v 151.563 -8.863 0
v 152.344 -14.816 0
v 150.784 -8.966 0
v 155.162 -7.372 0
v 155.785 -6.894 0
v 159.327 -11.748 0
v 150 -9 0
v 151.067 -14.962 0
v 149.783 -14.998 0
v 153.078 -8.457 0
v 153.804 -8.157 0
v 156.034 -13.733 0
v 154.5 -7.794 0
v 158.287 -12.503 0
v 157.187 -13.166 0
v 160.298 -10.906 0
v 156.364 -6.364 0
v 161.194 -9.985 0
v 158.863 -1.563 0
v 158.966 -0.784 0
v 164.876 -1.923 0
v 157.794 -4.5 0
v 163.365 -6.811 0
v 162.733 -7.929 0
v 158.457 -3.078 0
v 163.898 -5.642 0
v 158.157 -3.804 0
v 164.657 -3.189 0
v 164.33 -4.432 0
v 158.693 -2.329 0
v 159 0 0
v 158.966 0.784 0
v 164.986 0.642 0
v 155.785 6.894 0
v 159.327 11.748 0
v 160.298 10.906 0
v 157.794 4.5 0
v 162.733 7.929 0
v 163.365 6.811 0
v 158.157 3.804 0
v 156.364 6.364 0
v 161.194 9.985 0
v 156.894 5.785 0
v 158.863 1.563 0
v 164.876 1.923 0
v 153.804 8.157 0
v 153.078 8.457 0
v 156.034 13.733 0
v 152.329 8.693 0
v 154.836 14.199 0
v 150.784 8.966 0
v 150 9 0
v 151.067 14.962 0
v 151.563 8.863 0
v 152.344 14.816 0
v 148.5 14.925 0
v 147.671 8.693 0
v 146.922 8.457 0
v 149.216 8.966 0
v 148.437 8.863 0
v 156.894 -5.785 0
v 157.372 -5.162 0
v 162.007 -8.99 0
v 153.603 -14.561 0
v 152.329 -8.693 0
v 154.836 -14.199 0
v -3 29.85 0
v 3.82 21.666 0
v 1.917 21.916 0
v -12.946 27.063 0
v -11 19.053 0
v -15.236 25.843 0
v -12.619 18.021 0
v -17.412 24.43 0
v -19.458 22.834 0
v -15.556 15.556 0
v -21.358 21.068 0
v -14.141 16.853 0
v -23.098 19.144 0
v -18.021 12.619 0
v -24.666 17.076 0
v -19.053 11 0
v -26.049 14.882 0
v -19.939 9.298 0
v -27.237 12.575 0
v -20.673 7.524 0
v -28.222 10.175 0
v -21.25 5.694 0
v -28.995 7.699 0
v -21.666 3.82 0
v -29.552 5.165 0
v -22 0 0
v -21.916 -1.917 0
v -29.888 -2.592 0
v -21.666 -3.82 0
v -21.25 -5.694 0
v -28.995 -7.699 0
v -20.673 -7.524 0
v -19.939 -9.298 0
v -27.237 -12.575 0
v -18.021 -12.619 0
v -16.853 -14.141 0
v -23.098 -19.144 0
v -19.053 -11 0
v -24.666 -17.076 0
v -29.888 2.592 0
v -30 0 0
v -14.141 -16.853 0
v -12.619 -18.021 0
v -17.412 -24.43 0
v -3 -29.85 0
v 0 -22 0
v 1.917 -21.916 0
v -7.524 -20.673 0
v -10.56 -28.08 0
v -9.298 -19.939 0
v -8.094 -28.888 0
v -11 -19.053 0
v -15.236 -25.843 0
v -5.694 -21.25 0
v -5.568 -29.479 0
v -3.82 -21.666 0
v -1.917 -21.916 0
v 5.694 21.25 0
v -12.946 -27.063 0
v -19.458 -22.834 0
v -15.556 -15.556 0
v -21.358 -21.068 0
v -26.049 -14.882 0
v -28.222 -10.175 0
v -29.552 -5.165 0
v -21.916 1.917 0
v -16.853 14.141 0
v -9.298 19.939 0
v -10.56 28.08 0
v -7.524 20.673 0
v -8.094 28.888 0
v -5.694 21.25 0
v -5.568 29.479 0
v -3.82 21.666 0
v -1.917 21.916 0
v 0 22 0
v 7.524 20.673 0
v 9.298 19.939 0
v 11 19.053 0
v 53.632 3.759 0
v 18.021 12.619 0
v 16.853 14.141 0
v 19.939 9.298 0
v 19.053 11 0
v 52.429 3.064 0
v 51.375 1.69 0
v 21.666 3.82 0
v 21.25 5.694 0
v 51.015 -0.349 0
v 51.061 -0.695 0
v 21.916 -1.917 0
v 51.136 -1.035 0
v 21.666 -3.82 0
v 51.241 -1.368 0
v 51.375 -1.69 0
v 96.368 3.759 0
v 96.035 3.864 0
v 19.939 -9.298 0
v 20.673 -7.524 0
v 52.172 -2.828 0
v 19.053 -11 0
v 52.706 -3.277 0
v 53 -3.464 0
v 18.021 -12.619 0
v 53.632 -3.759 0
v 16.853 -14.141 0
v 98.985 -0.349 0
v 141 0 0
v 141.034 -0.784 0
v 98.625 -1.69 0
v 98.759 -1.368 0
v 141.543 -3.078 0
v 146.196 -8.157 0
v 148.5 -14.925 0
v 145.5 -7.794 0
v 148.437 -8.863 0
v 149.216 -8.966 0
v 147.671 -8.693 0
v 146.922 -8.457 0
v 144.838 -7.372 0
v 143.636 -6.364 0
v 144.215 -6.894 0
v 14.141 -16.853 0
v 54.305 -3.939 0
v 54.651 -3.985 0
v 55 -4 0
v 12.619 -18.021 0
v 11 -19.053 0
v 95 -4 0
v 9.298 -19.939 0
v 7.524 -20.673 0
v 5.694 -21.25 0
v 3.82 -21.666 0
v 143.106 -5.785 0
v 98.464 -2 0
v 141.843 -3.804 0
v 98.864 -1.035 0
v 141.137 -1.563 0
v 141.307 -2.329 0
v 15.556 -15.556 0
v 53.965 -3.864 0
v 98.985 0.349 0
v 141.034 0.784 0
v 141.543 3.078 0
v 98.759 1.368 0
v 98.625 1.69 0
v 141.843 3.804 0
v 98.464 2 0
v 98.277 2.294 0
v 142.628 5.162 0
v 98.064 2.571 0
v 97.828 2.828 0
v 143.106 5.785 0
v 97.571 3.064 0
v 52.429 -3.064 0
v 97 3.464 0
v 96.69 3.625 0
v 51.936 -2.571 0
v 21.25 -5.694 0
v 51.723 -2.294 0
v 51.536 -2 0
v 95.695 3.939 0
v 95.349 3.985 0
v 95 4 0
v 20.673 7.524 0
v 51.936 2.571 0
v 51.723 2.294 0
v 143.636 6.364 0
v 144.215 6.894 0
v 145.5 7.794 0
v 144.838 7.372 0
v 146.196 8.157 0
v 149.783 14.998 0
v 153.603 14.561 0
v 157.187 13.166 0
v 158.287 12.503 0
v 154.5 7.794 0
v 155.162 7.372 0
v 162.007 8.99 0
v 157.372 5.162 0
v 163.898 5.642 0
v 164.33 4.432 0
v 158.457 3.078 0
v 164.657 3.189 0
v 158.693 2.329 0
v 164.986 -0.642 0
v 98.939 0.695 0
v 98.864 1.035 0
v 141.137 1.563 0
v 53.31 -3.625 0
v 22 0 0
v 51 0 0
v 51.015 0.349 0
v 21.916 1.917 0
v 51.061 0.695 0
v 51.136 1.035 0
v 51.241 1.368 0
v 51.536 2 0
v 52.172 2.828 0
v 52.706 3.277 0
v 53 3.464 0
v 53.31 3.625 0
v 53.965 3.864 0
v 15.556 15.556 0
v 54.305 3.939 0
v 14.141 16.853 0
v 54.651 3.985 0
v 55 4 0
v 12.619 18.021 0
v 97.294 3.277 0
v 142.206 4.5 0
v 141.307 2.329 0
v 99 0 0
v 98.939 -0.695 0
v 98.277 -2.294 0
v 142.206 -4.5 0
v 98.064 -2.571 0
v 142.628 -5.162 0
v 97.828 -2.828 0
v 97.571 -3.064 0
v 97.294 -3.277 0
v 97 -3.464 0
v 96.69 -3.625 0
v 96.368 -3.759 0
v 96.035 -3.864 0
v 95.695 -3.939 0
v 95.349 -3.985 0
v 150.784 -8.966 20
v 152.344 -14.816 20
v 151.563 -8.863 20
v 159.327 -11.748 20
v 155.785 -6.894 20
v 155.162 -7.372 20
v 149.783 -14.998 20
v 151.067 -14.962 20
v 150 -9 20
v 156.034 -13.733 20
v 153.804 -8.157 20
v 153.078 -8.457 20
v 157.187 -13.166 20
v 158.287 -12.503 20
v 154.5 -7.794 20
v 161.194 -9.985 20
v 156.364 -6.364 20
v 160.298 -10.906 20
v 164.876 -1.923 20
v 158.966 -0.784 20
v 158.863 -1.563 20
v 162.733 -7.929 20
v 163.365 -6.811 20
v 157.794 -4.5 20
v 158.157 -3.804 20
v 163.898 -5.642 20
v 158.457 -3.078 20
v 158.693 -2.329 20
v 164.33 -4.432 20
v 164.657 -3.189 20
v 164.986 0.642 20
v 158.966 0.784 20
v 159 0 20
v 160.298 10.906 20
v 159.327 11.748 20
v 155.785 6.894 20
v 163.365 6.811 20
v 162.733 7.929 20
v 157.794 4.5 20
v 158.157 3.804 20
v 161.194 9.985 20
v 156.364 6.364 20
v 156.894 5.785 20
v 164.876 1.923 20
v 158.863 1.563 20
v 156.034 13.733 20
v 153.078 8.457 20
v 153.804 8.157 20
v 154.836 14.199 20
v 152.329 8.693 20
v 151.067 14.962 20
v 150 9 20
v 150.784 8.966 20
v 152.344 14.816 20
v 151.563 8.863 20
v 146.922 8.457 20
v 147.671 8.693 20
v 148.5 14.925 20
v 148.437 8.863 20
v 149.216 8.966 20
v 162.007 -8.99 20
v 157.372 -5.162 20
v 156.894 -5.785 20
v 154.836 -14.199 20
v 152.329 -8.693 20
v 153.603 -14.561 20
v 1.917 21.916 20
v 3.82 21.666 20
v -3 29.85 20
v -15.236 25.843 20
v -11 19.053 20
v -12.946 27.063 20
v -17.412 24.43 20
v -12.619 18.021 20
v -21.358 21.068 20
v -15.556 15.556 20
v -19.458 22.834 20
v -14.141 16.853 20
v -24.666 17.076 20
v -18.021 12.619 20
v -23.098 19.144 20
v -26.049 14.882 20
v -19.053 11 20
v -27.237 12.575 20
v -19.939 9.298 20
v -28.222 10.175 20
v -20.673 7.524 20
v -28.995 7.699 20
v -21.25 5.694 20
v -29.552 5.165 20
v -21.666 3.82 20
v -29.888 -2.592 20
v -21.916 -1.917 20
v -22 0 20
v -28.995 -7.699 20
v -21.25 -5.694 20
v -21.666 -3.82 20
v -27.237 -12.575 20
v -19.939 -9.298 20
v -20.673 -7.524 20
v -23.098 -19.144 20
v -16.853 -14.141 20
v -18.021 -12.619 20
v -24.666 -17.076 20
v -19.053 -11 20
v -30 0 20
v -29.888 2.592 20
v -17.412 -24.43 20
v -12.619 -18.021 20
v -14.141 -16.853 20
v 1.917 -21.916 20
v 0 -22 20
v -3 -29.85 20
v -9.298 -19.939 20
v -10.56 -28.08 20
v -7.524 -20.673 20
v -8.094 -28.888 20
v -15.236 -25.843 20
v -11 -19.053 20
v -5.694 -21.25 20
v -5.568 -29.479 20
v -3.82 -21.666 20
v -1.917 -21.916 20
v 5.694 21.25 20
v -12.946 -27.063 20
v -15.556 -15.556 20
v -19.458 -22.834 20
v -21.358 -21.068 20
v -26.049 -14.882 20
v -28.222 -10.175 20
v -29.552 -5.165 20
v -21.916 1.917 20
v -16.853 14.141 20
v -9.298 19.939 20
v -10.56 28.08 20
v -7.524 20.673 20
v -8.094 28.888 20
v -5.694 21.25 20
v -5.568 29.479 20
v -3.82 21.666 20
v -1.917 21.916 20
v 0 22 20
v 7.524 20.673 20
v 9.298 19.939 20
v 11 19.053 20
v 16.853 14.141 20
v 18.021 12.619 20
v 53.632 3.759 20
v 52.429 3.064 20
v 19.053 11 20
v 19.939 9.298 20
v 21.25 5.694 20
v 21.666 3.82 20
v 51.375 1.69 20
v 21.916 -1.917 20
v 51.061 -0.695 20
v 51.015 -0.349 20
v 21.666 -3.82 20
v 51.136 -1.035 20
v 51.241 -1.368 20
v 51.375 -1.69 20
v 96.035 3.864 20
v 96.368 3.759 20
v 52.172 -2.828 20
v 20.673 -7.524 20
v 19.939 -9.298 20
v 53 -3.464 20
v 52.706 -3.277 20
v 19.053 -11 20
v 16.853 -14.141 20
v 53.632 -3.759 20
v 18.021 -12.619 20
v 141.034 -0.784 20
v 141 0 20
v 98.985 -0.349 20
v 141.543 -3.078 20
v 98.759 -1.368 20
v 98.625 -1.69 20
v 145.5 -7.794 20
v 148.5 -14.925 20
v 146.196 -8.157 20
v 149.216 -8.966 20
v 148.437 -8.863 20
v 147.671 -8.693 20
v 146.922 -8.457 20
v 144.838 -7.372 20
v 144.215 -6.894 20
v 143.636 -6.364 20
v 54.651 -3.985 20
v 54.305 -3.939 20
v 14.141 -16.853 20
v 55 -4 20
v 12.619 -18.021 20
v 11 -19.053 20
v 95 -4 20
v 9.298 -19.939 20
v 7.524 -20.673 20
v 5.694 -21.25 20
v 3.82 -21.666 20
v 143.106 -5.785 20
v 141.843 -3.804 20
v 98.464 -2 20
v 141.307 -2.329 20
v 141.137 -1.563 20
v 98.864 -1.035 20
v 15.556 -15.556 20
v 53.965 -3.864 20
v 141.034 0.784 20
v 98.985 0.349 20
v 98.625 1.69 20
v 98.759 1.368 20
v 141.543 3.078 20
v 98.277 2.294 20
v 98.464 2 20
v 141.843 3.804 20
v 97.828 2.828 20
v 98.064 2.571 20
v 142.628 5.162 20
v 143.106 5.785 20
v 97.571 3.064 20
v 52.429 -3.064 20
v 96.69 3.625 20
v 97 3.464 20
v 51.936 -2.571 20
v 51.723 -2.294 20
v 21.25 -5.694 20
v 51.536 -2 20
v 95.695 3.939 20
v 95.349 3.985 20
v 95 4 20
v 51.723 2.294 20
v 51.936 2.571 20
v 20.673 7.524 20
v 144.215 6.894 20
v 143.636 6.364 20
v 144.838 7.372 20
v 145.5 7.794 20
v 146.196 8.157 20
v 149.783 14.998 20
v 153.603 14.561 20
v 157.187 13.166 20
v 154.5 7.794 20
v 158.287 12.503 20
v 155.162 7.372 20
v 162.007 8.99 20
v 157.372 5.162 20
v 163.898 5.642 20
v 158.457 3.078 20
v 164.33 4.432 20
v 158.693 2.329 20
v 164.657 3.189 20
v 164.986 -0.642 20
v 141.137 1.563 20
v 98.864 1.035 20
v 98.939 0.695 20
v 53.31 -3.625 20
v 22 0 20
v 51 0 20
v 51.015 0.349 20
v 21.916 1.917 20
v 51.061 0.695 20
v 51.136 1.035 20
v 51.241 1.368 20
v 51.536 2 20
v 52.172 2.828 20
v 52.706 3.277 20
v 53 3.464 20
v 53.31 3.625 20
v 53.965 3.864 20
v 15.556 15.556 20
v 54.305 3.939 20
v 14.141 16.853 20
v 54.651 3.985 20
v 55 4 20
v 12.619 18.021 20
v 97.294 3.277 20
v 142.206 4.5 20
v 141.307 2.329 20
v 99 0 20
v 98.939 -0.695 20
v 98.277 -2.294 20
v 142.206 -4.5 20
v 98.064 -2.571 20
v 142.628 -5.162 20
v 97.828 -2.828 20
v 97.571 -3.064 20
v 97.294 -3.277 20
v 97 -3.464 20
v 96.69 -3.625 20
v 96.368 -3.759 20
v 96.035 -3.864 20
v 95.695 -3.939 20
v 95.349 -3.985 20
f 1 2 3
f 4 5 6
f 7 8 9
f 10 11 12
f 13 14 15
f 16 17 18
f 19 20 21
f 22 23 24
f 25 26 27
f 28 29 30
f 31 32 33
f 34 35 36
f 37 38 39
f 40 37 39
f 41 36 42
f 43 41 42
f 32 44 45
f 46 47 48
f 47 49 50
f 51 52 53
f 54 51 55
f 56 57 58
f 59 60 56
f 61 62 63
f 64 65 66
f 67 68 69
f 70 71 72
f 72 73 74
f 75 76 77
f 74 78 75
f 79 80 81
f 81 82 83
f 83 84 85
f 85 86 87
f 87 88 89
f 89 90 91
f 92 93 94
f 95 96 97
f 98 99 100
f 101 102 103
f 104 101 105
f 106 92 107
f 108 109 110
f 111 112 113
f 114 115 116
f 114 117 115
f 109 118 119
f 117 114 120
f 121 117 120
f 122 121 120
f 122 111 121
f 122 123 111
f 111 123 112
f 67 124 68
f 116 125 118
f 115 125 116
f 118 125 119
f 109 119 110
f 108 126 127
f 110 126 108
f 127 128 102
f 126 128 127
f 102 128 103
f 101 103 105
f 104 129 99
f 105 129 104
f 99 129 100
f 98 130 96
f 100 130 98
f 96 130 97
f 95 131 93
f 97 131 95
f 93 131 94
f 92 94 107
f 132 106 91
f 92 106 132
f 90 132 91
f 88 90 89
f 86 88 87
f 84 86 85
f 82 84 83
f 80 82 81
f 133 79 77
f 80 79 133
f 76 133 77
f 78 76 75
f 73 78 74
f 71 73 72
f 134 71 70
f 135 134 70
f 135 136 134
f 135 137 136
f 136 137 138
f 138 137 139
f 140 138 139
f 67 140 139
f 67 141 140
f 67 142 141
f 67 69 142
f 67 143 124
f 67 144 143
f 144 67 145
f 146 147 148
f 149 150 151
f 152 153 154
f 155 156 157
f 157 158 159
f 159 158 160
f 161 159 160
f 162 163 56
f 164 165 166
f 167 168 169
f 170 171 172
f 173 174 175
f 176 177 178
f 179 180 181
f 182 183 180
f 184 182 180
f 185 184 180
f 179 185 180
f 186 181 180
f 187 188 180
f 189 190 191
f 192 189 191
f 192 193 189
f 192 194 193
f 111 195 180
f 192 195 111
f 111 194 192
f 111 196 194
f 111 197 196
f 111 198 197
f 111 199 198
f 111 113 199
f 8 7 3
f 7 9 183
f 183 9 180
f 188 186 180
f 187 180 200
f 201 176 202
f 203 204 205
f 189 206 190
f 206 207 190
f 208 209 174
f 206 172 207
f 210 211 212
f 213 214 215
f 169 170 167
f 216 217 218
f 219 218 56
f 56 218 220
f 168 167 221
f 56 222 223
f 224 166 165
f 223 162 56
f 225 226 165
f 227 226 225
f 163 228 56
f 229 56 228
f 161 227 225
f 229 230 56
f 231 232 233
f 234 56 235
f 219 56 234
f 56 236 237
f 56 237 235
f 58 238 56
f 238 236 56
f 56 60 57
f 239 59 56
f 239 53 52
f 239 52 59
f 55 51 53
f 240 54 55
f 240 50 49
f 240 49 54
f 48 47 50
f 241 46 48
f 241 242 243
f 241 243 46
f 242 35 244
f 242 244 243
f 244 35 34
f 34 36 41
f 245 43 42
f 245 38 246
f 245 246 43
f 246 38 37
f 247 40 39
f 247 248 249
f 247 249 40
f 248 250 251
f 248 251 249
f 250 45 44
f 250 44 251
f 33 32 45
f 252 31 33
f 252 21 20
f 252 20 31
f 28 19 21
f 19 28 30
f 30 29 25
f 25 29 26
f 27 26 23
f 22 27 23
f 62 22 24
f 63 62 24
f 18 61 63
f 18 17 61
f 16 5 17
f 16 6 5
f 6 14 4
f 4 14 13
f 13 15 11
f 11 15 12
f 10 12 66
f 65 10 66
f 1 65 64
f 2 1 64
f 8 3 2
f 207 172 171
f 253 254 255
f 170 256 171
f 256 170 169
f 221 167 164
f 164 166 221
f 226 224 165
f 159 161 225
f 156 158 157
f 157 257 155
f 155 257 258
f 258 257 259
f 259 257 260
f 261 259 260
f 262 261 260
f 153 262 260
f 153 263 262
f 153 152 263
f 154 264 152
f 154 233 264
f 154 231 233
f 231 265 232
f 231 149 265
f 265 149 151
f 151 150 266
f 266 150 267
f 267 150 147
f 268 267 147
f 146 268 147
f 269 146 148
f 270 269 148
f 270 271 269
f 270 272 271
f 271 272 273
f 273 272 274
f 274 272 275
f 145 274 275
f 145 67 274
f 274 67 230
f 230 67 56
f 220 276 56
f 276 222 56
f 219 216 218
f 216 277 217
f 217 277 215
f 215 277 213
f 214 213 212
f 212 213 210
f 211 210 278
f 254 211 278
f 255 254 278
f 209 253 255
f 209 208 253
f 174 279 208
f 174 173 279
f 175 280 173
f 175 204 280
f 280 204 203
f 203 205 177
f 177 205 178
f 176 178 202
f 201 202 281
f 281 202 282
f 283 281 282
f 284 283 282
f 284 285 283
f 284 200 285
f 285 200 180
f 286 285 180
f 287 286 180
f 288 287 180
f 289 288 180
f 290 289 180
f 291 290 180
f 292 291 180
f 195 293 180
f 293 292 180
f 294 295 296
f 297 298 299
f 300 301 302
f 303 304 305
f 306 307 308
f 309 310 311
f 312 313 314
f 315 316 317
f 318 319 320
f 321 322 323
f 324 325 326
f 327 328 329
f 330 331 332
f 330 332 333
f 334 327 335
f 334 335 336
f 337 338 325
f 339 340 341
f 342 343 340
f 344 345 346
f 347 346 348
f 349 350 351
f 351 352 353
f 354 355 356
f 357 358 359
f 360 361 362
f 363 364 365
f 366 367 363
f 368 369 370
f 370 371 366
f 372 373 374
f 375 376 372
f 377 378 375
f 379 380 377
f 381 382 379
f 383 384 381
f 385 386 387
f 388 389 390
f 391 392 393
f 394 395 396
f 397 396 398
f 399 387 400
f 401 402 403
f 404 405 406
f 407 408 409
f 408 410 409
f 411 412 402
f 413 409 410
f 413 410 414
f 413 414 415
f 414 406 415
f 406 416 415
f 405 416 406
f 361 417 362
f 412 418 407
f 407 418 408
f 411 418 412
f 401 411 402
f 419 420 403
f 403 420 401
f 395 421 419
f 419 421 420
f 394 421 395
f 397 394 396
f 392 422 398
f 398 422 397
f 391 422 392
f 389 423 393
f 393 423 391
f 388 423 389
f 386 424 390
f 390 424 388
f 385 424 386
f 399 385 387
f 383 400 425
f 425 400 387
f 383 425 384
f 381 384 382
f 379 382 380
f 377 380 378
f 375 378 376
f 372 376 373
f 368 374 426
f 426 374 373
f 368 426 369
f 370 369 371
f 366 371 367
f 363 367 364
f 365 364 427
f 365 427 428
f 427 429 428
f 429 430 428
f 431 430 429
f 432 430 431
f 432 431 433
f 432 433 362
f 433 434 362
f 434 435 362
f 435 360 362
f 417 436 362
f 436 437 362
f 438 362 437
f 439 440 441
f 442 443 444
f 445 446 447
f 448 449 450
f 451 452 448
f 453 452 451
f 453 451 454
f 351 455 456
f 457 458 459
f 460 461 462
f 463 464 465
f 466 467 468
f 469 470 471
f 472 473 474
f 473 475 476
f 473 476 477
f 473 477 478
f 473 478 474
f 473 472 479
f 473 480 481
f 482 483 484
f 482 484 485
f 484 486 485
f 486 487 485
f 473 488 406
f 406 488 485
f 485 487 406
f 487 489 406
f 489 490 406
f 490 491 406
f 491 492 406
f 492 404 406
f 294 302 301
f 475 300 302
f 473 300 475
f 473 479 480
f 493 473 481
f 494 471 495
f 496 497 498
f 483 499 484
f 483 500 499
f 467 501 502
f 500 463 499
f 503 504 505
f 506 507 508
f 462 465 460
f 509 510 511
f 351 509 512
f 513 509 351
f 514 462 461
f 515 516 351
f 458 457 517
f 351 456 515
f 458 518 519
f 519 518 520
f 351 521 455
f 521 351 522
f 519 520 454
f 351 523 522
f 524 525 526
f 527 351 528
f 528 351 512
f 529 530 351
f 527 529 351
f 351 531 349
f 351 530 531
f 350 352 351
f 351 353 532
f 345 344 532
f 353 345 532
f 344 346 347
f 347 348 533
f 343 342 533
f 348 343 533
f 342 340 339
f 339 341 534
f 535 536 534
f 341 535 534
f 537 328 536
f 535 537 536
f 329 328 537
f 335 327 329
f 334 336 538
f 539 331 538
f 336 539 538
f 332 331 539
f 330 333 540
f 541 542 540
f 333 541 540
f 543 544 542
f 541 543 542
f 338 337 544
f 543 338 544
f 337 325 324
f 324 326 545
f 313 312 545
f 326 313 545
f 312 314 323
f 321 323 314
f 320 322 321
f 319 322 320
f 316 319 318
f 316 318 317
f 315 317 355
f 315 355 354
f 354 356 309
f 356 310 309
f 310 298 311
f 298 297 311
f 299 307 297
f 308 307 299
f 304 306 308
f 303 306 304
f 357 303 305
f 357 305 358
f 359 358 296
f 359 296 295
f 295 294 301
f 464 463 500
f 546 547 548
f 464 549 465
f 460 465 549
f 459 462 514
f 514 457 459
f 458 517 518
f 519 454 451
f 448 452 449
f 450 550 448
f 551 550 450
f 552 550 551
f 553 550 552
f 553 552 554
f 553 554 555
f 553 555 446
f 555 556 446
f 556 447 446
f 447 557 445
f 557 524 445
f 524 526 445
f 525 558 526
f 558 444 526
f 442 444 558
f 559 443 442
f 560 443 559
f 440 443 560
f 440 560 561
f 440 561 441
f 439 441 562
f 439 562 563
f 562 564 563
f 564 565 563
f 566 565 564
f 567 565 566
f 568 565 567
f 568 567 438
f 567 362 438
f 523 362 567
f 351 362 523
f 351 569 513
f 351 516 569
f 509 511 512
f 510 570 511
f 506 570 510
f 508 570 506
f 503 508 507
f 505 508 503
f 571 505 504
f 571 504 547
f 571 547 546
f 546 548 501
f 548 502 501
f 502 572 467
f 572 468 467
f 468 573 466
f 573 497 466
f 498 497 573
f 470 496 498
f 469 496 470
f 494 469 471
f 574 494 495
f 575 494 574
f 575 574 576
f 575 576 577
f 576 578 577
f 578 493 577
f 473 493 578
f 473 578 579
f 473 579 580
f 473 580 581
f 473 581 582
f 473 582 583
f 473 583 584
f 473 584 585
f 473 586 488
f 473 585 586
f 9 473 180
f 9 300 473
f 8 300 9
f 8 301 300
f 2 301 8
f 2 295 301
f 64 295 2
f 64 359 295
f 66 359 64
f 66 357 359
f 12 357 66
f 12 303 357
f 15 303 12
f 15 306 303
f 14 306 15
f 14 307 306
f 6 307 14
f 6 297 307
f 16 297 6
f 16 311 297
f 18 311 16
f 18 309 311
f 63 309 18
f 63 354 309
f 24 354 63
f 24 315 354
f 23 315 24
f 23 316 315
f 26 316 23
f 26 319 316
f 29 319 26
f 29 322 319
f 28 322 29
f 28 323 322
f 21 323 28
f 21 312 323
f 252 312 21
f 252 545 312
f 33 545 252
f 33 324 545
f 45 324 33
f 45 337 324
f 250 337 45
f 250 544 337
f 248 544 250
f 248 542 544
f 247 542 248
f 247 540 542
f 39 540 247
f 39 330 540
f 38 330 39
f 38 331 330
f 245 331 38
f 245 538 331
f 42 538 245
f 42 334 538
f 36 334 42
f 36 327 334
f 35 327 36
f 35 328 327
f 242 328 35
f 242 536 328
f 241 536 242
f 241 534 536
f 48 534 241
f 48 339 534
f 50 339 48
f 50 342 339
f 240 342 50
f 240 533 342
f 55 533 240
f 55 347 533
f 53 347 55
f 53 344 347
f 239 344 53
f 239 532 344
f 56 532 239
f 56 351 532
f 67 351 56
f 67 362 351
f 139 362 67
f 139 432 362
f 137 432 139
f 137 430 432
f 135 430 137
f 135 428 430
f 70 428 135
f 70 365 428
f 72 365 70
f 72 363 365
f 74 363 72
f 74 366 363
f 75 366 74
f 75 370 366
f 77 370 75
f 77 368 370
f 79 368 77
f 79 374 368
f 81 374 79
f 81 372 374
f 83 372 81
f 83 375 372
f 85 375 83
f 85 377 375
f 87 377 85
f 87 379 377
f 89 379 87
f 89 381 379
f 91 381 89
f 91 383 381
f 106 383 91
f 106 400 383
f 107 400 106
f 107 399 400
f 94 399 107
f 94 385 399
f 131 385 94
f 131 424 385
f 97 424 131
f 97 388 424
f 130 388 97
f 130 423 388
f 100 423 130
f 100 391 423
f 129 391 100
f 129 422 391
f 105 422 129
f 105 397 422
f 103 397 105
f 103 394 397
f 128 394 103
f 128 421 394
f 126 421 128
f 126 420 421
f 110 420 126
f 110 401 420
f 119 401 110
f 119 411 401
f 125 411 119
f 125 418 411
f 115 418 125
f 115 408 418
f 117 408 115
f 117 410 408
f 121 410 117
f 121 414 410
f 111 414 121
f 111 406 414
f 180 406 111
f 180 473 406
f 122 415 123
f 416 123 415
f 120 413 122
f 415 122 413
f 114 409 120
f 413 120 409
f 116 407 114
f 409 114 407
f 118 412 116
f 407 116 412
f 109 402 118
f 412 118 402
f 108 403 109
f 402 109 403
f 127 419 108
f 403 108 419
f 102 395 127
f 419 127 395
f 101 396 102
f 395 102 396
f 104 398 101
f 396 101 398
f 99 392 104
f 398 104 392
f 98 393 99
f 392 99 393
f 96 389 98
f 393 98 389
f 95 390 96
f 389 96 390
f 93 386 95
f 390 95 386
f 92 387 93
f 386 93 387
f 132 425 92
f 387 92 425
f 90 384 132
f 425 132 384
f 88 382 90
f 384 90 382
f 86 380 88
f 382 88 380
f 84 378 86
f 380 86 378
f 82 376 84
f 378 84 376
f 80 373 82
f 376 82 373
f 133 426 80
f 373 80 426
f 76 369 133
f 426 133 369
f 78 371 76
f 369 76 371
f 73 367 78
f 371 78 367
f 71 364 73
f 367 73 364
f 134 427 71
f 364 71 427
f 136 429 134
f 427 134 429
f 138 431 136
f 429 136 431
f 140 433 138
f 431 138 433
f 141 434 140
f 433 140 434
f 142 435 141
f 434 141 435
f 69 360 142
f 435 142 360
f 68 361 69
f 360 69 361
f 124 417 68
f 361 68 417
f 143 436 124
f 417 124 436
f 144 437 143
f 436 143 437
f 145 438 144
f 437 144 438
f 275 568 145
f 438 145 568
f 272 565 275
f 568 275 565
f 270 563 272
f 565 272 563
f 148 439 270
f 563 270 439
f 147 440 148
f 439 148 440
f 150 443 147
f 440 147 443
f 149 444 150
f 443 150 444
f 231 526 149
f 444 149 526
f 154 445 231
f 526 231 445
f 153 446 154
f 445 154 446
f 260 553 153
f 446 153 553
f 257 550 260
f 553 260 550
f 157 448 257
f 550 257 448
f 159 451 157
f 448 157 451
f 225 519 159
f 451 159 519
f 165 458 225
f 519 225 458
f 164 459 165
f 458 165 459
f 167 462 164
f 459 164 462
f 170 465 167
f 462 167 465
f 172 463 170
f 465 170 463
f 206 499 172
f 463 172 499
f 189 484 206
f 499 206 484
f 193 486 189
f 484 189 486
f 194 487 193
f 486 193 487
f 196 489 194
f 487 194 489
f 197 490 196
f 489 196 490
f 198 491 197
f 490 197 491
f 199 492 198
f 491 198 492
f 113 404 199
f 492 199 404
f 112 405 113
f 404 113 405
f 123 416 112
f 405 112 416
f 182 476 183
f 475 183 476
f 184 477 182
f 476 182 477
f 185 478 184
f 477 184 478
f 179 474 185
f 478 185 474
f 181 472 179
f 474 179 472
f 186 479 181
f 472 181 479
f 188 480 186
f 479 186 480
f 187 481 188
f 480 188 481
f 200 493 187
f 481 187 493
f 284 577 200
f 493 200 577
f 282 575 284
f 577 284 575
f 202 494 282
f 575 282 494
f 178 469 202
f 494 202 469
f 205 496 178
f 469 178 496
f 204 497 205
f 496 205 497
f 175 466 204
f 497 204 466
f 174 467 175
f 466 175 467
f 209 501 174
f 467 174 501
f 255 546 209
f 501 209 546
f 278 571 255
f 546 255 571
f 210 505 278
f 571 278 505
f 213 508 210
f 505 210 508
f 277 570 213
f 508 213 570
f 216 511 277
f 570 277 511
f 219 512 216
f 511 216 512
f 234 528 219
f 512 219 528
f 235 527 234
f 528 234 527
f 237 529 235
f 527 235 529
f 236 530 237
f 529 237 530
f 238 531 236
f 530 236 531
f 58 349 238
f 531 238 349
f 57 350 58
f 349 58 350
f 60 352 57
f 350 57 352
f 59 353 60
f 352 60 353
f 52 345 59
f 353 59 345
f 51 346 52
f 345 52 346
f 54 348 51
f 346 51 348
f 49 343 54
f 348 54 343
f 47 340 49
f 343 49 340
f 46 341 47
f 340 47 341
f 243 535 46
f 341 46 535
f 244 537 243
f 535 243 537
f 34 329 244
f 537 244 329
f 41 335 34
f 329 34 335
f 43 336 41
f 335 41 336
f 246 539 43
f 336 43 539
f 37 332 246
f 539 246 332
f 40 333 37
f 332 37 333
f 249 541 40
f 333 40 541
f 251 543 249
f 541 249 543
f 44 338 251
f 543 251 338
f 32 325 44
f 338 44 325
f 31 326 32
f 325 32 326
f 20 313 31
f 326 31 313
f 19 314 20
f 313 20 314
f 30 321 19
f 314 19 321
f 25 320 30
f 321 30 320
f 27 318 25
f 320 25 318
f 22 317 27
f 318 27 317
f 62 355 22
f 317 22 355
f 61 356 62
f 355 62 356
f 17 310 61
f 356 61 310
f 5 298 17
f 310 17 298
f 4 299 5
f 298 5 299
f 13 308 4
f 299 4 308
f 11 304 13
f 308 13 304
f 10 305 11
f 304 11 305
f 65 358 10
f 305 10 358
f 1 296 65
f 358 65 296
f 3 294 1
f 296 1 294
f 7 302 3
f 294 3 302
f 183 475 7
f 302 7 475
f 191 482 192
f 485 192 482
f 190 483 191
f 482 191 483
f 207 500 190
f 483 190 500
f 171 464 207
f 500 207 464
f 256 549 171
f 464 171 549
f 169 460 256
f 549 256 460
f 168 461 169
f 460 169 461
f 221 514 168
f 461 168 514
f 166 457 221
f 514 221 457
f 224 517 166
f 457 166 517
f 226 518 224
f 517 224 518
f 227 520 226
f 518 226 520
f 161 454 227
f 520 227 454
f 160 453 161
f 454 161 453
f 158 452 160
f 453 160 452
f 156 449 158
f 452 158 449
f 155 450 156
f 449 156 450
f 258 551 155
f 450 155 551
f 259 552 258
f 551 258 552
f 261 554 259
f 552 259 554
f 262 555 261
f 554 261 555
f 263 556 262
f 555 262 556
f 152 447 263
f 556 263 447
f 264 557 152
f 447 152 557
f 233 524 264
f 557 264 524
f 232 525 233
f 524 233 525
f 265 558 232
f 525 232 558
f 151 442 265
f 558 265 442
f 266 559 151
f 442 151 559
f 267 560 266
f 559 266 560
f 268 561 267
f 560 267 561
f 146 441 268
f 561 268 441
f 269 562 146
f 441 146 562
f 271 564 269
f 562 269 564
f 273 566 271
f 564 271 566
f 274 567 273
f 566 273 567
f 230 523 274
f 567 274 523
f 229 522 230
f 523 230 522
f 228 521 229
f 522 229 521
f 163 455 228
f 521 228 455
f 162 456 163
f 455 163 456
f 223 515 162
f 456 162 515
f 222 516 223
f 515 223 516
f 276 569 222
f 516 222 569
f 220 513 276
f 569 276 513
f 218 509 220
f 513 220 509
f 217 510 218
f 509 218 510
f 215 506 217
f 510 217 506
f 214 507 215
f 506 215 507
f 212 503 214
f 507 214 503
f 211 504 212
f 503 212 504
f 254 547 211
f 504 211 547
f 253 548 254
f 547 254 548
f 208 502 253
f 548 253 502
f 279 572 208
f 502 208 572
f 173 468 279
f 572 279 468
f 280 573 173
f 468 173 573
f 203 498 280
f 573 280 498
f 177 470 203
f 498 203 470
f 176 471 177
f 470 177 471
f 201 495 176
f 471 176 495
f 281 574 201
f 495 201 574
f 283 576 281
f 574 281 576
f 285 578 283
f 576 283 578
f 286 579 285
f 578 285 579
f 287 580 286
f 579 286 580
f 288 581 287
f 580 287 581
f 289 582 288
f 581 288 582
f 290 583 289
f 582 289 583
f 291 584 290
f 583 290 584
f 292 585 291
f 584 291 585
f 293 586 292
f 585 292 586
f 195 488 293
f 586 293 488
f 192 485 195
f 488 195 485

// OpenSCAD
// Generated by DXF to 3D (https://github.com) - open in OpenSCAD
depth = 20;
scale_factor = 1;

scale([scale_factor, scale_factor, 1])
union() {
  linear_extrude(height = depth)
    polygon(points = [[-3,-29.8496],[148.5,-14.9248],[149.7829,-14.9984],[151.0673,-14.962],[152.3439,-14.8157],[153.6033,-14.5608],[154.8363,-14.1989],[156.0338,-13.7329],[157.187,-13.1661],[158.2874,-12.5027],[159.3271,-11.7476],[160.2983,-10.9062],[161.1939,-9.9848],[162.0074,-8.9901],[162.7328,-7.9295],[163.3647,-6.8106],[163.8985,-5.6418],[164.3304,-4.4316],[164.6571,-3.1889],[164.8763,-1.9227],[164.9862,-0.6425],[164.9862,0.6425],[164.8763,1.9227],[164.6571,3.1889],[164.3304,4.4316],[163.8985,5.6418],[163.3647,6.8106],[162.7328,7.9295],[162.0074,8.9901],[161.1939,9.9848],[160.2983,10.9062],[159.3271,11.7476],[158.2874,12.5027],[157.187,13.1661],[156.0338,13.7329],[154.8363,14.1989],[153.6033,14.5608],[152.3439,14.8157],[151.0673,14.962],[149.7829,14.9984],[148.5,14.9248],[-3,29.8496],[-5.5678,29.4788],[-8.0939,28.8875],[-10.5595,28.0802],[-12.9462,27.0628],[-15.236,25.8431],[-17.4118,24.43],[-19.4575,22.8343],[-21.3576,21.0678],[-23.098,19.1437],[-24.6656,17.0765],[-26.0488,14.8815],[-27.2371,12.5753],[-28.2218,10.175],[-28.9954,7.6986],[-29.5521,5.1646],[-29.8878,2.592],[-30,0],[-29.8878,-2.592],[-29.5521,-5.1646],[-28.9954,-7.6986],[-28.2218,-10.175],[-27.2371,-12.5753],[-26.0488,-14.8815],[-24.6656,-17.0765],[-23.098,-19.1437],[-21.3576,-21.0678],[-19.4575,-22.8343],[-17.4118,-24.43],[-15.236,-25.8431],[-12.9462,-27.0628],[-10.5595,-28.0802],[-8.0939,-28.8875],[-5.5678,-29.4788],[22,0],[21.9163,1.9174],[21.6658,3.8203],[21.2504,5.694],[20.6732,7.5244],[19.9388,9.2976],[19.0526,11],[18.0213,12.6187],[16.853,14.1413],[15.5563,15.5563],[14.1413,16.853],[12.6187,18.0213],[11,19.0526],[9.2976,19.9388],[7.5244,20.6732],[5.694,21.2504],[3.8203,21.6658],[1.9174,21.9163],[0,22],[-1.9174,21.9163],[-3.8203,21.6658],[-5.694,21.2504],[-7.5244,20.6732],[-9.2976,19.9388],[-11,19.0526],[-12.6187,18.0213],[-14.1413,16.853],[-15.5563,15.5563],[-16.853,14.1413],[-18.0213,12.6187],[-19.0526,11],[-19.9388,9.2976],[-20.6732,7.5244],[-21.2504,5.694],[-21.6658,3.8203],[-21.9163,1.9174],[-22,0],[-21.9163,-1.9174],[-21.6658,-3.8203],[-21.2504,-5.694],[-20.6732,-7.5244],[-19.9388,-9.2976],[-19.0526,-11],[-18.0213,-12.6187],[-16.853,-14.1413],[-15.5563,-15.5563],[-14.1413,-16.853],[-12.6187,-18.0213],[-11,-19.0526],[-9.2976,-19.9388],[-7.5244,-20.6732],[-5.694,-21.2504],[-3.8203,-21.6658],[-1.9174,-21.9163],[0,-22],[1.9174,-21.9163],[3.8203,-21.6658],[5.694,-21.2504],[7.5244,-20.6732],[9.2976,-19.9388],[11,-19.0526],[12.6187,-18.0213],[14.1413,-16.853],[15.5563,-15.5563],[16.853,-14.1413],[18.0213,-12.6187],[19.0526,-11],[19.9388,-9.2976],[20.6732,-7.5244],[21.2504,-5.694],[21.6658,-3.8203],[21.9163,-1.9174],[159,0],[158.9658,0.7844],[158.8633,1.5628],[158.6933,2.3294],[158.4572,3.0782],[158.1568,3.8036],[157.7942,4.5],[157.3724,5.1622],[156.8944,5.7851],[156.364,6.364],[155.7851,6.8944],[155.1622,7.3724],[154.5,7.7942],[153.8036,8.1568],[153.0782,8.4572],[152.3294,8.6933],[151.5628,8.8633],[150.7844,8.9658],[150,9],[149.2156,8.9658],[148.4372,8.8633],[147.6706,8.6933],[146.9218,8.4572],[146.1964,8.1568],[145.5,7.7942],[144.8378,7.3724],[144.2149,6.8944],[143.636,6.364],[143.1056,5.7851],[142.6276,5.1622],[142.2058,4.5],[141.8432,3.8036],[141.5428,3.0782],[141.3067,2.3294],[141.1367,1.5628],[141.0342,0.7844],[141,0],[141.0342,-0.7844],[141.1367,-1.5628],[141.3067,-2.3294],[141.5428,-3.0782],[141.8432,-3.8036],[142.2058,-4.5],[142.6276,-5.1622],[143.1056,-5.7851],[143.636,-6.364],[144.2149,-6.8944],[144.8378,-7.3724],[145.5,-7.7942],[146.1964,-8.1568],[146.9218,-8.4572],[147.6706,-8.6933],[148.4372,-8.8633],[149.2156,-8.9658],[150,-9],[150.7844,-8.9658],[151.5628,-8.8633],[152.3294,-8.6933],[153.0782,-8.4572],[153.8036,-8.1568],[154.5,-7.7942],[155.1622,-7.3724],[155.7851,-6.8944],[156.364,-6.364],[156.8944,-5.7851],[157.3724,-5.1622],[157.7942,-4.5],[158.1568,-3.8036],[158.4572,-3.0782],[158.6933,-2.3294],[158.8633,-1.5628],[158.9658,-0.7844],[55,-4],[95,-4],[95.3486,-3.9848],[95.6946,-3.9392],[96.0353,-3.8637],[96.3681,-3.7588],[96.6905,-3.6252],[97,-3.4641],[97.2943,-3.2766],[97.5712,-3.0642],[97.8284,-2.8284],[98.0642,-2.5712],[98.2766,-2.2943],[98.4641,-2],[98.6252,-1.6905],[98.7588,-1.3681],[98.8637,-1.0353],[98.9392,-0.6946],[98.9848,-0.3486],[99,0],[98.9848,0.3486],[98.9392,0.6946],[98.8637,1.0353],[98.7588,1.3681],[98.6252,1.6905],[98.4641,2],[98.2766,2.2943],[98.0642,2.5712],[97.8284,2.8284],[97.5712,3.0642],[97.2943,3.2766],[97,3.4641],[96.6905,3.6252],[96.3681,3.7588],[96.0353,3.8637],[95.6946,3.9392],[95.3486,3.9848],[95,4],[55,4],[54.6514,3.9848],[54.3054,3.9392],[53.9647,3.8637],[53.6319,3.7588],[53.3095,3.6252],[53,3.4641],[52.7057,3.2766],[52.4288,3.0642],[52.1716,2.8284],[51.9358,2.5712],[51.7234,2.2943],[51.5359,2],[51.3748,1.6905],[51.2412,1.3681],[51.1363,1.0353],[51.0608,0.6946],[51.0152,0.3486],[51,0],[51.0152,-0.3486],[51.0608,-0.6946],[51.1363,-1.0353],[51.2412,-1.3681],[51.3748,-1.6905],[51.5359,-2],[51.7234,-2.2943],[51.9358,-2.5712],[52.1716,-2.8284],[52.4288,-3.0642],[52.7057,-3.2766],[53,-3.4641],[53.3095,-3.6252],[53.6319,-3.7588],[53.9647,-3.8637],[54.3054,-3.9392],[54.6514,-3.9848]],
      paths = [[0,1,2,3,4,5,6,7,8,9,10,11,12,13,14,15,16,17,18,19,20,21,22,23,24,25,26,27,28,29,30,31,32,33,34,35,36,37,38,39,40,41,42,43,44,45,46,47,48,49,50,51,52,53,54,55,56,57,58,59,60,61,62,63,64,65,66,67,68,69,70,71,72,73,74],[75,76,77,78,79,80,81,82,83,84,85,86,87,88,89,90,91,92,93,94,95,96,97,98,99,100,101,102,103,104,105,106,107,108,109,110,111,112,113,114,115,116,117,118,119,120,121,122,123,124,125,126,127,128,129,130,131,132,133,134,135,136,137,138,139,140,141,142,143,144,145,146],[147,148,149,150,151,152,153,154,155,156,157,158,159,160,161,162,163,164,165,166,167,168,169,170,171,172,173,174,175,176,177,178,179,180,181,182,183,184,185,186,187,188,189,190,191,192,193,194,195,196,197,198,199,200,201,202,203,204,205,206,207,208,209,210,211,212,213,214,215,216,217,218],[219,220,221,222,223,224,225,226,227,228,229,230,231,232,233,234,235,236,237,238,239,240,241,242,243,244,245,246,247,248,249,250,251,252,253,254,255,256,257,258,259,260,261,262,263,264,265,266,267,268,269,270,271,272,273,274,275,276,277,278,279,280,281,282,283,284,285,286,287,288,289,290,291,292]]);
}
